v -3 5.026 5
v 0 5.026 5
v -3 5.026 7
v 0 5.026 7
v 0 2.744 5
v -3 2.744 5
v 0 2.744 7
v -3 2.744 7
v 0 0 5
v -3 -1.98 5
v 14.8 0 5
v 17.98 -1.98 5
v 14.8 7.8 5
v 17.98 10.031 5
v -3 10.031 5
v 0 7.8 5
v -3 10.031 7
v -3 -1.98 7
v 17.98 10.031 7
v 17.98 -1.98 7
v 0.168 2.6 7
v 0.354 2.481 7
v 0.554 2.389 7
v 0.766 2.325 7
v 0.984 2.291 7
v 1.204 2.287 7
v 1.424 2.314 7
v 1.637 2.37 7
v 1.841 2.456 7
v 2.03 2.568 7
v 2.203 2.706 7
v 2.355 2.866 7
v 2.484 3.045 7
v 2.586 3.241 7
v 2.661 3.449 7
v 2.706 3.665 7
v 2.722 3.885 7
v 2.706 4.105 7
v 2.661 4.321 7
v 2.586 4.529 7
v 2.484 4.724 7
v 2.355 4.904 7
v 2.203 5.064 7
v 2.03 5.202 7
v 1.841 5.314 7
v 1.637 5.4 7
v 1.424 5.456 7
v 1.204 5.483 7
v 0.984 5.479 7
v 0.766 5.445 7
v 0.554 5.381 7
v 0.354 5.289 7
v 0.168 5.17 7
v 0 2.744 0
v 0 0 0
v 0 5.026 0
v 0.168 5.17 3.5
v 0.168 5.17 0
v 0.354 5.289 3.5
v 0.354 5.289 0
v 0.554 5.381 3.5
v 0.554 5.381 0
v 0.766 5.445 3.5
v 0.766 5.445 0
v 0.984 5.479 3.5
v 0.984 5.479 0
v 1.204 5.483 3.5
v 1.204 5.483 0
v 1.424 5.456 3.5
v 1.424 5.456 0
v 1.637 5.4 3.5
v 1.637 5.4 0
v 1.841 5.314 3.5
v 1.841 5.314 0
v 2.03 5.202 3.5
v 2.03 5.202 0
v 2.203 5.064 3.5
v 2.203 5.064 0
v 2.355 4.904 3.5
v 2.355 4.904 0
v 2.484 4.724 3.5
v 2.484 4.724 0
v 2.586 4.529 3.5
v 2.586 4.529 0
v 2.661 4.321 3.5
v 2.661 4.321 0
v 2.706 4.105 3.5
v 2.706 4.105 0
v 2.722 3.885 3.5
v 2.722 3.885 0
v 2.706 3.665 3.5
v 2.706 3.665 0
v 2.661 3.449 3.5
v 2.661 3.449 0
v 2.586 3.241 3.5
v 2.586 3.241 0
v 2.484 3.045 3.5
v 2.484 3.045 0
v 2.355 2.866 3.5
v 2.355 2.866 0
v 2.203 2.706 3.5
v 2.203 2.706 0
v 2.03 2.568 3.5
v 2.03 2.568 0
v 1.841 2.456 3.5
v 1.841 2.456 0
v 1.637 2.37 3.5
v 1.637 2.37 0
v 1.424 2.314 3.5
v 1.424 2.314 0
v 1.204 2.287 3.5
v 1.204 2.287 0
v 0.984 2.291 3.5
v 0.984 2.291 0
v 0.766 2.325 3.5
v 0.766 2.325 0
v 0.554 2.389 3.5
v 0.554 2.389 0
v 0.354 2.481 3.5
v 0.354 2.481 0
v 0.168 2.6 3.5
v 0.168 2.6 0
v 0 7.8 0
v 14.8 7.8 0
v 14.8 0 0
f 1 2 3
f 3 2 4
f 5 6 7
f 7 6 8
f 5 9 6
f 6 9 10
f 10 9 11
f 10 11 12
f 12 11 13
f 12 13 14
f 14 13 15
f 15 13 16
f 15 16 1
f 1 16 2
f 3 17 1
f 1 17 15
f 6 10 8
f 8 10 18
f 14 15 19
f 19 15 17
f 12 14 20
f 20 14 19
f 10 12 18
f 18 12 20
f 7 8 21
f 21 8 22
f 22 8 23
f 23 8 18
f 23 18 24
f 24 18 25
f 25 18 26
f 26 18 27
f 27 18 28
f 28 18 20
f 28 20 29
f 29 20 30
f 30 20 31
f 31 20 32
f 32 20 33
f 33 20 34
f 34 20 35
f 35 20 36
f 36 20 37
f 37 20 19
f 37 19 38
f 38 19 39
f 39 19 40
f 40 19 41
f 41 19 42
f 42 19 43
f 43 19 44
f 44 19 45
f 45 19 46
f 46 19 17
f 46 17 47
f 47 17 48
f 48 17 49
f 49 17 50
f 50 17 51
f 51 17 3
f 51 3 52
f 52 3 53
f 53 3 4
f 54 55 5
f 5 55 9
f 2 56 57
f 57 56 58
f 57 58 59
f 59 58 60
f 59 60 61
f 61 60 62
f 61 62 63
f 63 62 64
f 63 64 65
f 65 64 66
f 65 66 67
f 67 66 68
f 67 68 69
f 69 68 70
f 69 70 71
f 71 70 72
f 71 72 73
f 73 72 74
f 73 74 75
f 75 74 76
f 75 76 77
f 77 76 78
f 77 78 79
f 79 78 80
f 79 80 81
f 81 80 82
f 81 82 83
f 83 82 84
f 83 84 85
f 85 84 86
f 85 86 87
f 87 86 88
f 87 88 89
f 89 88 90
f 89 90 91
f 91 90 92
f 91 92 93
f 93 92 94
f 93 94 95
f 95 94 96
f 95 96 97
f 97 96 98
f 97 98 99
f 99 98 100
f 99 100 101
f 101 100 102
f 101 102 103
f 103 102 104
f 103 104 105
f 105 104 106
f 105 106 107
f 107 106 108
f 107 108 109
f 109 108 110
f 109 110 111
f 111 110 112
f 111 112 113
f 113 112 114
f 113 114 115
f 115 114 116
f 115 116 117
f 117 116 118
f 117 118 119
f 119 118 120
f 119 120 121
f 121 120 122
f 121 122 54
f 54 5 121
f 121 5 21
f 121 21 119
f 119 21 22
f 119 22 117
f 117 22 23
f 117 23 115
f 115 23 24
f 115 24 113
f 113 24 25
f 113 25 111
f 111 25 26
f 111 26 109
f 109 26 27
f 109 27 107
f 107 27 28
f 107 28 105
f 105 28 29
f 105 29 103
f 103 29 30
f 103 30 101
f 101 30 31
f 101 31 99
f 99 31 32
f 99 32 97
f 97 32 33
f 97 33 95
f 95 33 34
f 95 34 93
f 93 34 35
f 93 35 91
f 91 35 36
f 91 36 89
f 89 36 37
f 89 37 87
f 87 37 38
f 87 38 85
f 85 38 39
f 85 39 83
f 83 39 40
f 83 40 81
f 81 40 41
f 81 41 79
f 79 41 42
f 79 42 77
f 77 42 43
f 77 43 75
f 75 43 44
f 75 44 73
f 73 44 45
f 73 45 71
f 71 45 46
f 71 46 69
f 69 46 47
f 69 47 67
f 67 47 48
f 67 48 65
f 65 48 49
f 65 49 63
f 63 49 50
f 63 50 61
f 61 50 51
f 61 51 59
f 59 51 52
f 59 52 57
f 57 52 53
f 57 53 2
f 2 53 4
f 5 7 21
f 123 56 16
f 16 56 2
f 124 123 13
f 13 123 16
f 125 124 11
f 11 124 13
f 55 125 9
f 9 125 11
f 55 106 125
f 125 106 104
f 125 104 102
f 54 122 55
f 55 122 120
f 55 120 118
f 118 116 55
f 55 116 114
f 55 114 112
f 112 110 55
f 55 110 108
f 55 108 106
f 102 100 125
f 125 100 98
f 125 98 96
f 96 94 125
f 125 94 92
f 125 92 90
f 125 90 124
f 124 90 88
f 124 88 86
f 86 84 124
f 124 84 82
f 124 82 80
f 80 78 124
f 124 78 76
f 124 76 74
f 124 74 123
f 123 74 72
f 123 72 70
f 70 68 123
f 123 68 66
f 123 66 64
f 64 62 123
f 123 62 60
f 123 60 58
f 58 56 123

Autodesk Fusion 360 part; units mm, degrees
sketch "草图1" plane through (0, 0, 0) normal (0, 0, 1) x (1, 0, 0)
  line L0 (0, 0) -> (14.8, 0)
  line L1 (14.8, 0) -> (14.8, 7.8)
  line L2 (14.8, 7.8) -> (0, 7.8)
  line L3 (0, 7.8) -> (0, 0)
  arc A0 (0, 2.7439) -> (0, 5.026) centre (1.1216, 3.885) ccw
  dimension "d1" = 14.8
  dimension "d2" = 7.8
  dimension "d3" = 3.2
extrude "拉伸1" add sketch "草图1" along normal blind 5 contours L0 L1 L2 L3 A0
sketch "草图2" plane through (0, 0, 5) normal (0, 0, 1) x (-1, 0, 0)
  line L0 (0, 0) -> (-14.8, 0)
  line L1 (-14.8, 0) -> (-14.8, -7.8)
  line L2 (-14.8, -7.8) -> (0, -7.8)
  line L3 (0, -7.8) -> (0, -5.026)
  arc A0 (0, -2.7439) -> (0, -5.026) centre (-1.1216, -3.885) ccw
  line L4 (0, -2.7439) -> (0, 0)
  line L5 (3, -10.0312) -> (-17.9802, -10.0312)
  line L6 (-17.9802, -10.0312) -> (-17.9802, 1.9802)
  line L7 (-17.9802, 1.9802) -> (3, 1.9802)
  line L8 (3, 1.9802) -> (3, -10.0312)
extrude "拉伸2" add sketch "草图2" along normal blind 2 contours L0 L1 L2 L3 A0 L4 | L5 L6 L7 L8
extrude "拉伸3" cut sketch "草图1" along normal blind 13 contours L3 A0
sketch "草图3" plane through (0, 0, 5) normal (0, 0, -1) x (1, 0, 0)
  line L0 (0, -5.026) -> (0, -2.7439)
  line L1 (0, -2.7439) -> (0, 0)
  line L2 (0, 0) -> (14.8, 0)
  line L3 (14.8, 0) -> (14.8, -7.8)
  line L4 (14.8, -7.8) -> (0, -7.8)
  line L5 (0, -7.8) -> (0, -5.026)
  line L6 (17.9802, 1.9802) -> (-3, 1.9802)
  line L7 (-3, 1.9802) -> (-3, -10.0312)
  line L8 (-3, -10.0312) -> (17.9802, -10.0312)
  line L9 (17.9802, -10.0312) -> (17.9802, 1.9802)
  line L10 (0, -2.7439) -> (-3, -2.7439)
  line L11 (0, -5.026) -> (-3, -5.026)
extrude "拉伸4" cut sketch "草图3" against normal blind 2 contours L0 L7 L10 L11
